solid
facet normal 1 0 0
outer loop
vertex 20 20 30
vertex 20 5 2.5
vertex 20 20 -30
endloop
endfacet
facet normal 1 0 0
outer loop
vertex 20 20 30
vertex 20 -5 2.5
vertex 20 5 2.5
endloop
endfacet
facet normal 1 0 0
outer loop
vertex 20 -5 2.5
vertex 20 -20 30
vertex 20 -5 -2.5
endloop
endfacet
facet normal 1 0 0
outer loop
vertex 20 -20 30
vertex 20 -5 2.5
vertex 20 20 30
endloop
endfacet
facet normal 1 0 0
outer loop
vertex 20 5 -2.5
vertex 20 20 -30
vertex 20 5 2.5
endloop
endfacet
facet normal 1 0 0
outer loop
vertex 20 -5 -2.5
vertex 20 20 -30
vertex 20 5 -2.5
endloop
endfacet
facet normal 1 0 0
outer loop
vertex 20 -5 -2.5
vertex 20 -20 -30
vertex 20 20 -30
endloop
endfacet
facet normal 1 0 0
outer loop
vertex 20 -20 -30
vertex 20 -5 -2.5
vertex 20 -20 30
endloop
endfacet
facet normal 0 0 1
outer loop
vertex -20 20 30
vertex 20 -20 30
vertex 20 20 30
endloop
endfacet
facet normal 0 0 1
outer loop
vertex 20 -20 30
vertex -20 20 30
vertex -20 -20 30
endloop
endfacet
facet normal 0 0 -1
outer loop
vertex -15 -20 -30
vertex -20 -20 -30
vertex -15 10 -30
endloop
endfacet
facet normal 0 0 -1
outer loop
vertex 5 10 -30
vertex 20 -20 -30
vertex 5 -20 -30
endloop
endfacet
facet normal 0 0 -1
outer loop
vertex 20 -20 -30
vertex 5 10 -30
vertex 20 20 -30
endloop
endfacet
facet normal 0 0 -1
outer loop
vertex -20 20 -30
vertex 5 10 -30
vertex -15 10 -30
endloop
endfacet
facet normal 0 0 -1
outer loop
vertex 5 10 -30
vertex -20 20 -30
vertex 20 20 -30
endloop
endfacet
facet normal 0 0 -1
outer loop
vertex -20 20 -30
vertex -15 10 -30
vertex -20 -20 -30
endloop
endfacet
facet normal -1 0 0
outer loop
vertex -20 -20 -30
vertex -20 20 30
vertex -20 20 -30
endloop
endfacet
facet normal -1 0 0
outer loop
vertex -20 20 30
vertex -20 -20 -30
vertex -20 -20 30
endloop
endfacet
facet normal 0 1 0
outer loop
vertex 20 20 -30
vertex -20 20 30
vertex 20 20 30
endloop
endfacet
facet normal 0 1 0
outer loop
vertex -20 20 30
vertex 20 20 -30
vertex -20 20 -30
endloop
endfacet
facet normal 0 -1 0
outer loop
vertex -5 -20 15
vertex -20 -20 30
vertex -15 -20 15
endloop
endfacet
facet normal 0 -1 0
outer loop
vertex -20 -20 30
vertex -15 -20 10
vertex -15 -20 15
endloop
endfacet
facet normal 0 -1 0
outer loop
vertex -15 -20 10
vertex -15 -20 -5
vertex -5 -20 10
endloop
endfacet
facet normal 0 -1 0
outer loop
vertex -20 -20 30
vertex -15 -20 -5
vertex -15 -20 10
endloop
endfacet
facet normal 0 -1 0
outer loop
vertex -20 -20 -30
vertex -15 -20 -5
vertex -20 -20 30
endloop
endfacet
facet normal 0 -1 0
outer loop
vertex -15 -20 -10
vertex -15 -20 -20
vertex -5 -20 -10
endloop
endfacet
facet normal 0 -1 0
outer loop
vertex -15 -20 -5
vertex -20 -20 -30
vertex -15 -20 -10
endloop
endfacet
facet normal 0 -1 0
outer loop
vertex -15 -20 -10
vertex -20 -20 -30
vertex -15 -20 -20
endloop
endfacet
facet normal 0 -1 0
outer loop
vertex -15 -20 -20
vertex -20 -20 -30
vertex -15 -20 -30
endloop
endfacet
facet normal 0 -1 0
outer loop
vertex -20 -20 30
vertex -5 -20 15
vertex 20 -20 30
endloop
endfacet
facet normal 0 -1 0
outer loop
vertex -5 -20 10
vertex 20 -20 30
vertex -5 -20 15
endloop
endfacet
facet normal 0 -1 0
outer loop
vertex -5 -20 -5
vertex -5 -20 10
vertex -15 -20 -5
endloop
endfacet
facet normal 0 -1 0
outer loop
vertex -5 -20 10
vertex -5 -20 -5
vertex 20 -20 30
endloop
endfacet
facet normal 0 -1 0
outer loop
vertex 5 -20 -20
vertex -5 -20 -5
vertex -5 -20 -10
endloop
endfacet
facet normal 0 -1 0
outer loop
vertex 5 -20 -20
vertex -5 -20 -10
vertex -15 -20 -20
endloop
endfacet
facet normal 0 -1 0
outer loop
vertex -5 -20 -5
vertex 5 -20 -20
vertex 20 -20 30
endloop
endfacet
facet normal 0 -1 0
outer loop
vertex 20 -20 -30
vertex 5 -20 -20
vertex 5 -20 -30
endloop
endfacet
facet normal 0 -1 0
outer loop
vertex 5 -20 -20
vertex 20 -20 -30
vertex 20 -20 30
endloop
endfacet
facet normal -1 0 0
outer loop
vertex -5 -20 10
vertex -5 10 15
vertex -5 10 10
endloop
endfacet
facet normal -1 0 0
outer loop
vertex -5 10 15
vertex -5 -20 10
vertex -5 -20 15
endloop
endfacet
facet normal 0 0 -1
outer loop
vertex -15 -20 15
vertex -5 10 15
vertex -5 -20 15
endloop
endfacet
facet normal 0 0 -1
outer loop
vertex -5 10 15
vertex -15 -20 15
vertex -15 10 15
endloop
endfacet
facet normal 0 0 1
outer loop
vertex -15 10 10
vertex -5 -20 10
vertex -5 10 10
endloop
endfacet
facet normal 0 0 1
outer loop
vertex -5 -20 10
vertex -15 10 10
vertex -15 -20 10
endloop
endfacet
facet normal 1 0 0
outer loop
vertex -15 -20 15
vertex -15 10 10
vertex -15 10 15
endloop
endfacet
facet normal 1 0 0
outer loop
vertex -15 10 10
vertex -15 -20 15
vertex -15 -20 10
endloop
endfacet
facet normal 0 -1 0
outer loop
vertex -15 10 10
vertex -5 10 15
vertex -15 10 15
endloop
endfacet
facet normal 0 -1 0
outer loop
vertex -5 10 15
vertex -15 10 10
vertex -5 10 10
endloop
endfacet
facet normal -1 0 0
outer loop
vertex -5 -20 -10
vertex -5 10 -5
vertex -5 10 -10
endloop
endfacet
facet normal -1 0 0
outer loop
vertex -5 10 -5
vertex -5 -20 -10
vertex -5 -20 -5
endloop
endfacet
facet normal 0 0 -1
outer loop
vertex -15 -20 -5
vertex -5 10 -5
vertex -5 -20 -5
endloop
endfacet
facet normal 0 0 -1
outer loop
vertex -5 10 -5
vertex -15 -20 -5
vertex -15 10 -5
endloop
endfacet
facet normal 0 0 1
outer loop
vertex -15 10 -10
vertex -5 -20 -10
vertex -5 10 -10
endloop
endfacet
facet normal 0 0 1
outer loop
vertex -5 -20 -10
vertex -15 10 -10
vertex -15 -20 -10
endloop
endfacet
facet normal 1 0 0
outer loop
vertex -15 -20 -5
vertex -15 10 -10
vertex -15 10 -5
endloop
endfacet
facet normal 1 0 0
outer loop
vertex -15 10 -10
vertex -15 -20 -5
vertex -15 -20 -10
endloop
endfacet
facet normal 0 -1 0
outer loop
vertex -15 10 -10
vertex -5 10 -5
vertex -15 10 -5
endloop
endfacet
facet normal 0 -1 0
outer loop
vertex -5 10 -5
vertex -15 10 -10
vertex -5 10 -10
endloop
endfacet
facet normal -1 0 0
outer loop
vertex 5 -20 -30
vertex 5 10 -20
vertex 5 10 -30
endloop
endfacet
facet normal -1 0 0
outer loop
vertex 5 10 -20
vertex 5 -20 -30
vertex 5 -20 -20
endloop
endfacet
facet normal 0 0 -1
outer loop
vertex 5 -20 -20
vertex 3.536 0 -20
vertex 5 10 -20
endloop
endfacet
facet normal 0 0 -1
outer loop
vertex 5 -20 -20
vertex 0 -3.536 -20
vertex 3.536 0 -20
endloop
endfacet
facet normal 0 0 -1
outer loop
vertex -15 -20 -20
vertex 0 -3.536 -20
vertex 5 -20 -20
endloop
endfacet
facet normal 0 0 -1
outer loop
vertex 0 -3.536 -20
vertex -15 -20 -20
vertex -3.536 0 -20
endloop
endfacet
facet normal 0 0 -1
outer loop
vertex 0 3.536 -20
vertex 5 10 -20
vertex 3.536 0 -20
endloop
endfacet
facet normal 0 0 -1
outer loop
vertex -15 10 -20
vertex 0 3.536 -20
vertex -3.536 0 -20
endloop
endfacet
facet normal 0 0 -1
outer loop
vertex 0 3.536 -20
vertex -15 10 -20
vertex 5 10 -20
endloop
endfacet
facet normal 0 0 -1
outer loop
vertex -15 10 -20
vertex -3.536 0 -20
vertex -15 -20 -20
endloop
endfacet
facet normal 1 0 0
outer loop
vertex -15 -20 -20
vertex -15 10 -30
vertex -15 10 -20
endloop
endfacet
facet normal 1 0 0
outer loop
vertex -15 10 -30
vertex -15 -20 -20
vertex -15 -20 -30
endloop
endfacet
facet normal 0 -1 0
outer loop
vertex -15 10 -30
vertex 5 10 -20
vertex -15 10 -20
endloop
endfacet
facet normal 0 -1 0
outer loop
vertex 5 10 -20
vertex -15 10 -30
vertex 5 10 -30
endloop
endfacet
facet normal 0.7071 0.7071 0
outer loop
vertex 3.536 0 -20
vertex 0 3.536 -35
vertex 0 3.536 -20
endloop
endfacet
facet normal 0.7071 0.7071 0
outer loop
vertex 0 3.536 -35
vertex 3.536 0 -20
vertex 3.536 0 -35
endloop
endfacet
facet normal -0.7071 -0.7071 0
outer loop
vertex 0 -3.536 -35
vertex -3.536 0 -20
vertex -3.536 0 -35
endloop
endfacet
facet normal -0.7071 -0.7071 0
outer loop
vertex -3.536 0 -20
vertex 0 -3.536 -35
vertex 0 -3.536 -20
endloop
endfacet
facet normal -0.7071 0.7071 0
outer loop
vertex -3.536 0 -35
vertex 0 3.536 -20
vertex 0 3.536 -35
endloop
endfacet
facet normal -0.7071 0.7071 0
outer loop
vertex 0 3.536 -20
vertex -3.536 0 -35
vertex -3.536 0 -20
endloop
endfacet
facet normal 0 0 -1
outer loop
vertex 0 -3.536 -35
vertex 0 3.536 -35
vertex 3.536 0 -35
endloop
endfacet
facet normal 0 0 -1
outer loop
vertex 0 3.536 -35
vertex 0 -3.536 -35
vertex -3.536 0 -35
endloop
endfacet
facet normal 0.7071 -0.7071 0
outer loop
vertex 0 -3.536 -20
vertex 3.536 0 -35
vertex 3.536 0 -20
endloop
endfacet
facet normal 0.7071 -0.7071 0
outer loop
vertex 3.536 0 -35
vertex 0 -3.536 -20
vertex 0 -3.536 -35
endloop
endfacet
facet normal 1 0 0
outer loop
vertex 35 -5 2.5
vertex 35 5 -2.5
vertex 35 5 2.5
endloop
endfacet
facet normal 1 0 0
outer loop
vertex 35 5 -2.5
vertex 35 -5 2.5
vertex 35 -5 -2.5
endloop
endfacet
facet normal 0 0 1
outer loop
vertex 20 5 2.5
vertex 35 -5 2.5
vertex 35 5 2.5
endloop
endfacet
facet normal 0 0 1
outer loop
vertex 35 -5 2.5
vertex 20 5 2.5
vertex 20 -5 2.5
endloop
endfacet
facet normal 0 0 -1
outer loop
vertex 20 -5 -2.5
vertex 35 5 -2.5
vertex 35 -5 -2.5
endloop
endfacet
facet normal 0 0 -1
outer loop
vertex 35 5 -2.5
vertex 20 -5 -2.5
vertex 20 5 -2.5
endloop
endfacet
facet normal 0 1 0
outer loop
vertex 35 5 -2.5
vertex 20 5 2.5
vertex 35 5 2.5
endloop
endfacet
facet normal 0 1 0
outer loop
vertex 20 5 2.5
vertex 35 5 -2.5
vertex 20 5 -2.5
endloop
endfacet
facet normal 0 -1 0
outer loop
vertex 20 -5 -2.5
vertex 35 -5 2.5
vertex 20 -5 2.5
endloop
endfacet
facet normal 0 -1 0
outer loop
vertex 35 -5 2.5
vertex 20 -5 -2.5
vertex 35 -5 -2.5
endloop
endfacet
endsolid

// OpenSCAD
// Main block
module main_block() {
    difference() {
        // Base cuboid
        cube([40, 40, 60], center = true);
        
        // Front face cutouts
        translate([-15, -20, 10]) cube([10, 30, 5], center = false); // Top slot
        translate([-15, -20, -10]) cube([10, 30, 5], center = false); // Bottom slot
        translate([-15, -20, -30]) cube([20, 30, 10], center = false); // Center cutout
        
        // Top opening
        translate([-20, -20, 30]) cube([40, 40, 10], center = false);
    }
}

// Angled support beam
module angled_support_beam() {
    rotate([0, 0, 45]) translate([0, 0, -10]) cube([5, 5, 50], center = true);
}

// Protruding rectangular arm
module protruding_rectangular_arm() {
    translate([20, 0, 0]) cube([30, 10, 5], center = true);
}

// Assemble the model
module flexible_coupling() {
    main_block();
    translate([0, 0, 0]) angled_support_beam();
    translate([0, 0, 0]) protruding_rectangular_arm();
}

// Render the model
flexible_coupling();
